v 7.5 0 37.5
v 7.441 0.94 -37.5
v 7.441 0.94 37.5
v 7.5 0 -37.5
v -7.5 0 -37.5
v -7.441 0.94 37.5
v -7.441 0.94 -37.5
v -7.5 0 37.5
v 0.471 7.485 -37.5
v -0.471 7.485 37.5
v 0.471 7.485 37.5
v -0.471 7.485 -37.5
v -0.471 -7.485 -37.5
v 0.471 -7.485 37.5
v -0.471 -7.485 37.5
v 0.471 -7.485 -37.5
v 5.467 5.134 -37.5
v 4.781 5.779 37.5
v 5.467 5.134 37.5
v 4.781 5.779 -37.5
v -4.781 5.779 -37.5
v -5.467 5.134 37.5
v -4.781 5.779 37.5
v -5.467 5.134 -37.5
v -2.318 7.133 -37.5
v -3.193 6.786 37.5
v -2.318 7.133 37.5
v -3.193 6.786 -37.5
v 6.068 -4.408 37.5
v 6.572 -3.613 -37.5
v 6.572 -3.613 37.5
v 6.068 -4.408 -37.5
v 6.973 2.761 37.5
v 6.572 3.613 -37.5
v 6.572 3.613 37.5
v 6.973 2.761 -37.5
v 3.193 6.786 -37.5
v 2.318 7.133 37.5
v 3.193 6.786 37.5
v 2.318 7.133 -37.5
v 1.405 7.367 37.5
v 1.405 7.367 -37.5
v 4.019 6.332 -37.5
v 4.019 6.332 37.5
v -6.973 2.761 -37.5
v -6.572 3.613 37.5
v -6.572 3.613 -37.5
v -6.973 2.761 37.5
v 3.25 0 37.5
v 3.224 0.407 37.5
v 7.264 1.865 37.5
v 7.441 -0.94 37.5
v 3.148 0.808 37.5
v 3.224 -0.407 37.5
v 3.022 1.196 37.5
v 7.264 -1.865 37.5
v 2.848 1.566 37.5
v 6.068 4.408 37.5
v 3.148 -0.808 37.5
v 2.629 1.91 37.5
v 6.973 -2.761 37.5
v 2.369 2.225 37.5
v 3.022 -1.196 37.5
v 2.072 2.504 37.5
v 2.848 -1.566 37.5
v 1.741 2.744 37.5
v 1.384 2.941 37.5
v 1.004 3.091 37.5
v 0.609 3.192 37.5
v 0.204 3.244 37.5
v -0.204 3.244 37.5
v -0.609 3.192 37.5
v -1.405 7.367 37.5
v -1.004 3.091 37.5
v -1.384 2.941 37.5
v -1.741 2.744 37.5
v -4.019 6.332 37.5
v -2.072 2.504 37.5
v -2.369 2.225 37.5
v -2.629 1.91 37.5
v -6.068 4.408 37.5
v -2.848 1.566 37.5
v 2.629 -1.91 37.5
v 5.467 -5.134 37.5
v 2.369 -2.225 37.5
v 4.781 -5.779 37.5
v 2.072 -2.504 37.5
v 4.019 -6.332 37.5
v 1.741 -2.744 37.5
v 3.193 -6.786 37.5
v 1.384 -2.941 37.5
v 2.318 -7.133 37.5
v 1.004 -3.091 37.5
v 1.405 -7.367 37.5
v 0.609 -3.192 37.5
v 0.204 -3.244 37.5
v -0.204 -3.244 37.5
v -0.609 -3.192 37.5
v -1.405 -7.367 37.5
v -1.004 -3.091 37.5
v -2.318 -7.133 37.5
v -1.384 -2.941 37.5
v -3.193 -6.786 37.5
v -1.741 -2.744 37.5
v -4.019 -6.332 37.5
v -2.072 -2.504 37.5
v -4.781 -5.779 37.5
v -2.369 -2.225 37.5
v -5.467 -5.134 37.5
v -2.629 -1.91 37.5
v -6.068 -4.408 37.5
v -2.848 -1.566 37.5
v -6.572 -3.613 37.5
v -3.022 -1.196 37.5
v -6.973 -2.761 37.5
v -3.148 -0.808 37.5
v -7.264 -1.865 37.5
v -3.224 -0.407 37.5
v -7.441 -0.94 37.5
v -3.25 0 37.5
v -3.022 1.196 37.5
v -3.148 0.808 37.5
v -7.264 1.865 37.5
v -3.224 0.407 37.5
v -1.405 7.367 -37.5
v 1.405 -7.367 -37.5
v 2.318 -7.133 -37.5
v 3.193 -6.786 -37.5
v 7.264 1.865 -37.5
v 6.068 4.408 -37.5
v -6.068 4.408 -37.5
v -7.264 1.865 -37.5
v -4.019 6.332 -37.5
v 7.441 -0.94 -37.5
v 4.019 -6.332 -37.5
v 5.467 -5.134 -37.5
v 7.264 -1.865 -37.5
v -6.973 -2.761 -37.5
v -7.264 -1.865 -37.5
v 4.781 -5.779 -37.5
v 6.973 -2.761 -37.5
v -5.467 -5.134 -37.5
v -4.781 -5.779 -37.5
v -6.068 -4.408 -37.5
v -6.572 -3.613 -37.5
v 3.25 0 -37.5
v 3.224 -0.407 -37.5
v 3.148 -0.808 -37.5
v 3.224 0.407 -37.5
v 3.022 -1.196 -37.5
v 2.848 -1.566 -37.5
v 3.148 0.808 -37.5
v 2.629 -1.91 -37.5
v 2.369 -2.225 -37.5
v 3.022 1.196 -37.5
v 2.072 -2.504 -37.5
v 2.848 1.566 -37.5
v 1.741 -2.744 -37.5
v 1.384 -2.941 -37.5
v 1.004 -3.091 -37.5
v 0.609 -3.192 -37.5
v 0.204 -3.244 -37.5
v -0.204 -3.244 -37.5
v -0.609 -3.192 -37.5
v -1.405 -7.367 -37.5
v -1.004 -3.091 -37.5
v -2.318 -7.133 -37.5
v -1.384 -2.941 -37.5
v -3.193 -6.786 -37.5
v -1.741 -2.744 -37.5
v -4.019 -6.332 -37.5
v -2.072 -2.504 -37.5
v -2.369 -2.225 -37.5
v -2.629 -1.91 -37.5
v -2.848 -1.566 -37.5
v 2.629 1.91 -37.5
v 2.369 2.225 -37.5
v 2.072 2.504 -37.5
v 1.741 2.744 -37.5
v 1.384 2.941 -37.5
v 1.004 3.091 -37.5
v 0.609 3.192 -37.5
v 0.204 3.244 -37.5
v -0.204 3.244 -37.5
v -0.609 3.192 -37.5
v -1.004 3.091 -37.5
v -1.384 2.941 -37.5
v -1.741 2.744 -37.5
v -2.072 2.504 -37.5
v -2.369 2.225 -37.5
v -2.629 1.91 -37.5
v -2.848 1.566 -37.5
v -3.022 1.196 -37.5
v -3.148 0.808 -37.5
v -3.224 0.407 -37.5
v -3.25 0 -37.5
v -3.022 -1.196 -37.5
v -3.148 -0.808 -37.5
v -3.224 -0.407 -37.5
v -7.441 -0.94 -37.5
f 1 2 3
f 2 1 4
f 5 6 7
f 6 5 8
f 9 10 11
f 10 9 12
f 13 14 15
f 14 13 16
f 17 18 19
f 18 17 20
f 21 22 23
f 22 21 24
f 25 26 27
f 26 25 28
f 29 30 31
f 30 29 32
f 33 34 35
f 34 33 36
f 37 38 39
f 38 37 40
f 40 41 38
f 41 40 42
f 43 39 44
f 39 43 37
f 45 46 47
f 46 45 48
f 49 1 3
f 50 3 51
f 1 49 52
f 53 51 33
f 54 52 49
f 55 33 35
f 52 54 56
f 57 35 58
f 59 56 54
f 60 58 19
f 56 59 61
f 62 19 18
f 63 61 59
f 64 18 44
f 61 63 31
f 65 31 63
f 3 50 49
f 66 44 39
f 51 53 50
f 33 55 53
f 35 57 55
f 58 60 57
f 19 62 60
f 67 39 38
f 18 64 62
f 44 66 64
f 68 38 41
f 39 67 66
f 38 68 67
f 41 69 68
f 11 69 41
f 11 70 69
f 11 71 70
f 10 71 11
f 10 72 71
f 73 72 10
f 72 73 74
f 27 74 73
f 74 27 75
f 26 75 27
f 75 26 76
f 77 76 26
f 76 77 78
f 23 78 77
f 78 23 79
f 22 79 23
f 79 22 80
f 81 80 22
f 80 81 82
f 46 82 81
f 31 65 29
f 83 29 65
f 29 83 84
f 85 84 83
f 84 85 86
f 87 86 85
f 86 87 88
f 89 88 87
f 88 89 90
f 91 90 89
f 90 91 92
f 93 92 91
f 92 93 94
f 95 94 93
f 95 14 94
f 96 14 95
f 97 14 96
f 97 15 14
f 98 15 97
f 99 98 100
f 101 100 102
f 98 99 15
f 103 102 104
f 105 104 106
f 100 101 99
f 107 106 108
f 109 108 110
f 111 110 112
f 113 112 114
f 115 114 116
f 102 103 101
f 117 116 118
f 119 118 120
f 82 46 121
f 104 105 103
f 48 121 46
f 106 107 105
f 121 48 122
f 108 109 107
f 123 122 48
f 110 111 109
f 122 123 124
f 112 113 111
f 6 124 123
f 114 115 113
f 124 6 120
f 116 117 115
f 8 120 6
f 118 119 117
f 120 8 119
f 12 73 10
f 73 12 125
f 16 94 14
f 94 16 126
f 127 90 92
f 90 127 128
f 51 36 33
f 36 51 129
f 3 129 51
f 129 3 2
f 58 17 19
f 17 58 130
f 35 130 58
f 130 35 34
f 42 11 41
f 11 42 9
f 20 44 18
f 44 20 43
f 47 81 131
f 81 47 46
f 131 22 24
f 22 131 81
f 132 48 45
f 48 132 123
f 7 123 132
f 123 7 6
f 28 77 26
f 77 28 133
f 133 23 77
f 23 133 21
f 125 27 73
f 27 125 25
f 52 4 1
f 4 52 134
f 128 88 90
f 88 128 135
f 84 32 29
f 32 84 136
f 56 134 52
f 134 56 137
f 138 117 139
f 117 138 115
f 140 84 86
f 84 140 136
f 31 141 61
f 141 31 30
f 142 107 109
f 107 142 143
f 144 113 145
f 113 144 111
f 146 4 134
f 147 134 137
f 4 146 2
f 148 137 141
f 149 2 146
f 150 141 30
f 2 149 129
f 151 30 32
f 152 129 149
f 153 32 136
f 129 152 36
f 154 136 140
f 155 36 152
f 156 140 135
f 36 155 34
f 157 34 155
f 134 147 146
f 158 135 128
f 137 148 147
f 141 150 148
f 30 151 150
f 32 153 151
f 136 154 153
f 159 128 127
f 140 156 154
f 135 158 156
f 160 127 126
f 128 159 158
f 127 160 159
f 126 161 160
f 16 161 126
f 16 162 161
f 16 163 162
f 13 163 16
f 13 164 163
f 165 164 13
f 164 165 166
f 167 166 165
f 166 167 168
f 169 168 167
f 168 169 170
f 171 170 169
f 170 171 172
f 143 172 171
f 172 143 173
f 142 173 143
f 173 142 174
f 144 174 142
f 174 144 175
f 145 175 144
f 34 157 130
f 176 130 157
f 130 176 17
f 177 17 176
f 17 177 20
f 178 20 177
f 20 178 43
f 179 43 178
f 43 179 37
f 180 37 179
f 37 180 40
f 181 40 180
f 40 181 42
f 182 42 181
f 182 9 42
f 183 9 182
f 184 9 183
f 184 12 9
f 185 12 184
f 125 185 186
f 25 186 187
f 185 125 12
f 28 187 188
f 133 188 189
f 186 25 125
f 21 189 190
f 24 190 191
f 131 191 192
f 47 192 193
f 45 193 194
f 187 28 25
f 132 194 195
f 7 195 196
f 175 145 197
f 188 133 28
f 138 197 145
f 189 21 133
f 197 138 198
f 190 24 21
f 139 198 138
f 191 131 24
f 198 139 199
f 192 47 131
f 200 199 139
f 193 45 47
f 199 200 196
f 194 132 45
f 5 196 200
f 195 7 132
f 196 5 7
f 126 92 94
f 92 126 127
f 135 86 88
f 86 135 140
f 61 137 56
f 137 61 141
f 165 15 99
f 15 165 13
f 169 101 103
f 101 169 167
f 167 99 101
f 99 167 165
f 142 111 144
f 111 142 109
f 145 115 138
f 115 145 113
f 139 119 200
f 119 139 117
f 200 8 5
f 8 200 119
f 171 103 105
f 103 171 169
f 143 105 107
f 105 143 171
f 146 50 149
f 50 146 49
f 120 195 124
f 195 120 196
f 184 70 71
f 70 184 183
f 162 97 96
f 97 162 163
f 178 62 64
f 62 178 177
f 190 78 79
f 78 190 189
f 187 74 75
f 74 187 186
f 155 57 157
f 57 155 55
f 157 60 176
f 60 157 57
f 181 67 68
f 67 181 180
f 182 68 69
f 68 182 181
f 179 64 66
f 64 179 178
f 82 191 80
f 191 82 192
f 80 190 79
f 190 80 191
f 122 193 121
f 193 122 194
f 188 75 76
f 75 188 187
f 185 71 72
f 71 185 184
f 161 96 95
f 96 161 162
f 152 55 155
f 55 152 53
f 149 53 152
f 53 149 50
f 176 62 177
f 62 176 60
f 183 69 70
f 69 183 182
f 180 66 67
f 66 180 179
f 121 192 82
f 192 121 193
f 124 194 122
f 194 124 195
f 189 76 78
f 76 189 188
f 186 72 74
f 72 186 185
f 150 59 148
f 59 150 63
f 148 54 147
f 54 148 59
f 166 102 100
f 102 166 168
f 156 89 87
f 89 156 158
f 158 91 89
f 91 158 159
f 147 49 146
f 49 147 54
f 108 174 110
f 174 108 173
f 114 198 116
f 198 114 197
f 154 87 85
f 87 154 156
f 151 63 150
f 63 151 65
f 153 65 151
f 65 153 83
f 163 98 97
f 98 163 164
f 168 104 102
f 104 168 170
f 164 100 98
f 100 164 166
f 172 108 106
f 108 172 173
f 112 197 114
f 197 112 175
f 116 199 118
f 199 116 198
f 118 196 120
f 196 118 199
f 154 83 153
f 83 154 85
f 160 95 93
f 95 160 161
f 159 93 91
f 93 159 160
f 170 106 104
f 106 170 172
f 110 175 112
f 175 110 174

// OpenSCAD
$fn = 50;


difference() {
	union() {
		translate(v = [0, 0, -37.5000000000]) {
			cylinder(h = 75, r = 7.5000000000);
		}
	}
	union() {
		translate(v = [0, 0, -100.0000000000]) {
			cylinder(h = 200, r = 3.2500000000);
		}
	}
}
